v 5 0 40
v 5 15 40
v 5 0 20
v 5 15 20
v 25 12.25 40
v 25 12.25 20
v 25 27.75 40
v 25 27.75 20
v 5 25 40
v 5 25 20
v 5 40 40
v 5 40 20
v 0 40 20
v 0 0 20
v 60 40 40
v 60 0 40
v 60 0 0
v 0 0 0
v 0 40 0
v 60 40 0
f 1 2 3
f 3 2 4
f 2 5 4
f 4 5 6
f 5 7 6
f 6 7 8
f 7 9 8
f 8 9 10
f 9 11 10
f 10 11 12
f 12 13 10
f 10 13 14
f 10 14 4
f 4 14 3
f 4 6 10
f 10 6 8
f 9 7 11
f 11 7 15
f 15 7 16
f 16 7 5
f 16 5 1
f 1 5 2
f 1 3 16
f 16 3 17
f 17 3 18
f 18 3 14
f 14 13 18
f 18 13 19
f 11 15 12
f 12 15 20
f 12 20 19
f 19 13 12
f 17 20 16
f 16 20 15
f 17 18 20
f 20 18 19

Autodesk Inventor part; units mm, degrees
ref_plane "YZ Plane" through (0, 0, 0) normal (1, 0, 0) x (0, 1, 0)
ref_plane "XZ Plane" through (0, 0, 0) normal (0, 1, 0) x (-1, 0, 0)
ref_plane "XY Plane" through (0, 0, 0) normal (0, 0, 1) x (1, 0, 0)
sketch "Boceto1" plane through (0, 0, 0) normal (0, 0, 1) x (1, 0, 0)
  line L0 (0, 0) -> (60, 0)
  line L1 (60, 0) -> (60, 40)
  line L2 (60, 40) -> (0, 40)
  line L3 (0, 40) -> (0, 0)
  dimension "d0" = 60
  dimension "d1" = 40
extrude "Extrusión1" add sketch "Boceto1" along normal blind 40
sketch "Boceto2" plane through (0, 0, 40) normal (0, 0, 1) x (1, 0, 0)
  line L0 (0, 40) -> (0, 0) projected
  line L1 (0, 0) -> (5, 0)
  line L2 (0, 0) -> (0, 40)
  line L3 (0, 40) -> (5, 40)
  line L4 (5, 0) -> (5, 15)
  line L5 (0, 0) -> (60, 0) projected
  line L6 (5, 0) -> (20, 0) construction
  line L7 (5, 40) -> (5, 25)
  line L8 (60, 40) -> (0, 40) projected
  line L9 (5, 40) -> (20, 40) construction
  line L10 (5, 40) -> (25, 40) construction
  line L11 (25, 40) -> (25, 27.75) construction
  line L12 (25, 40) -> (37.25, 40) construction
  line L13 (5, 0) -> (25, 0) construction
  line L14 (25, 0) -> (25, 12.25) construction
  line L15 (5, 25) -> (25, 27.75)
  line L16 (5, 15) -> (25, 12.25)
  line L17 (25, 27.75) -> (25, 12.25)
  dimension "d4" = 5
  dimension "d5" = 40
  dimension "d6" = 5
  dimension "d7" = 15
  dimension "d8" = 90
  dimension "d9" = 15
  dimension "d10" = 90
  dimension "d11" = 20
  dimension "d12" = 12.25
  dimension "d13" = 90
  dimension "d14" = 20
  dimension "d15" = 12.25
  dimension "d16" = 90
extrude "Extrusión2" cut sketch "Boceto2" against normal blind 20
equation "\"d4\" = Espesor_corte"
equation "\"d6\" = Espesor_corte"
equation "\"Espesor_corte\" = 5"
equation "\"Angulo_0\" = 0"
equation "\"Angulo_90\" = 90deg"
properties part number "Hembra_parametrizada"
